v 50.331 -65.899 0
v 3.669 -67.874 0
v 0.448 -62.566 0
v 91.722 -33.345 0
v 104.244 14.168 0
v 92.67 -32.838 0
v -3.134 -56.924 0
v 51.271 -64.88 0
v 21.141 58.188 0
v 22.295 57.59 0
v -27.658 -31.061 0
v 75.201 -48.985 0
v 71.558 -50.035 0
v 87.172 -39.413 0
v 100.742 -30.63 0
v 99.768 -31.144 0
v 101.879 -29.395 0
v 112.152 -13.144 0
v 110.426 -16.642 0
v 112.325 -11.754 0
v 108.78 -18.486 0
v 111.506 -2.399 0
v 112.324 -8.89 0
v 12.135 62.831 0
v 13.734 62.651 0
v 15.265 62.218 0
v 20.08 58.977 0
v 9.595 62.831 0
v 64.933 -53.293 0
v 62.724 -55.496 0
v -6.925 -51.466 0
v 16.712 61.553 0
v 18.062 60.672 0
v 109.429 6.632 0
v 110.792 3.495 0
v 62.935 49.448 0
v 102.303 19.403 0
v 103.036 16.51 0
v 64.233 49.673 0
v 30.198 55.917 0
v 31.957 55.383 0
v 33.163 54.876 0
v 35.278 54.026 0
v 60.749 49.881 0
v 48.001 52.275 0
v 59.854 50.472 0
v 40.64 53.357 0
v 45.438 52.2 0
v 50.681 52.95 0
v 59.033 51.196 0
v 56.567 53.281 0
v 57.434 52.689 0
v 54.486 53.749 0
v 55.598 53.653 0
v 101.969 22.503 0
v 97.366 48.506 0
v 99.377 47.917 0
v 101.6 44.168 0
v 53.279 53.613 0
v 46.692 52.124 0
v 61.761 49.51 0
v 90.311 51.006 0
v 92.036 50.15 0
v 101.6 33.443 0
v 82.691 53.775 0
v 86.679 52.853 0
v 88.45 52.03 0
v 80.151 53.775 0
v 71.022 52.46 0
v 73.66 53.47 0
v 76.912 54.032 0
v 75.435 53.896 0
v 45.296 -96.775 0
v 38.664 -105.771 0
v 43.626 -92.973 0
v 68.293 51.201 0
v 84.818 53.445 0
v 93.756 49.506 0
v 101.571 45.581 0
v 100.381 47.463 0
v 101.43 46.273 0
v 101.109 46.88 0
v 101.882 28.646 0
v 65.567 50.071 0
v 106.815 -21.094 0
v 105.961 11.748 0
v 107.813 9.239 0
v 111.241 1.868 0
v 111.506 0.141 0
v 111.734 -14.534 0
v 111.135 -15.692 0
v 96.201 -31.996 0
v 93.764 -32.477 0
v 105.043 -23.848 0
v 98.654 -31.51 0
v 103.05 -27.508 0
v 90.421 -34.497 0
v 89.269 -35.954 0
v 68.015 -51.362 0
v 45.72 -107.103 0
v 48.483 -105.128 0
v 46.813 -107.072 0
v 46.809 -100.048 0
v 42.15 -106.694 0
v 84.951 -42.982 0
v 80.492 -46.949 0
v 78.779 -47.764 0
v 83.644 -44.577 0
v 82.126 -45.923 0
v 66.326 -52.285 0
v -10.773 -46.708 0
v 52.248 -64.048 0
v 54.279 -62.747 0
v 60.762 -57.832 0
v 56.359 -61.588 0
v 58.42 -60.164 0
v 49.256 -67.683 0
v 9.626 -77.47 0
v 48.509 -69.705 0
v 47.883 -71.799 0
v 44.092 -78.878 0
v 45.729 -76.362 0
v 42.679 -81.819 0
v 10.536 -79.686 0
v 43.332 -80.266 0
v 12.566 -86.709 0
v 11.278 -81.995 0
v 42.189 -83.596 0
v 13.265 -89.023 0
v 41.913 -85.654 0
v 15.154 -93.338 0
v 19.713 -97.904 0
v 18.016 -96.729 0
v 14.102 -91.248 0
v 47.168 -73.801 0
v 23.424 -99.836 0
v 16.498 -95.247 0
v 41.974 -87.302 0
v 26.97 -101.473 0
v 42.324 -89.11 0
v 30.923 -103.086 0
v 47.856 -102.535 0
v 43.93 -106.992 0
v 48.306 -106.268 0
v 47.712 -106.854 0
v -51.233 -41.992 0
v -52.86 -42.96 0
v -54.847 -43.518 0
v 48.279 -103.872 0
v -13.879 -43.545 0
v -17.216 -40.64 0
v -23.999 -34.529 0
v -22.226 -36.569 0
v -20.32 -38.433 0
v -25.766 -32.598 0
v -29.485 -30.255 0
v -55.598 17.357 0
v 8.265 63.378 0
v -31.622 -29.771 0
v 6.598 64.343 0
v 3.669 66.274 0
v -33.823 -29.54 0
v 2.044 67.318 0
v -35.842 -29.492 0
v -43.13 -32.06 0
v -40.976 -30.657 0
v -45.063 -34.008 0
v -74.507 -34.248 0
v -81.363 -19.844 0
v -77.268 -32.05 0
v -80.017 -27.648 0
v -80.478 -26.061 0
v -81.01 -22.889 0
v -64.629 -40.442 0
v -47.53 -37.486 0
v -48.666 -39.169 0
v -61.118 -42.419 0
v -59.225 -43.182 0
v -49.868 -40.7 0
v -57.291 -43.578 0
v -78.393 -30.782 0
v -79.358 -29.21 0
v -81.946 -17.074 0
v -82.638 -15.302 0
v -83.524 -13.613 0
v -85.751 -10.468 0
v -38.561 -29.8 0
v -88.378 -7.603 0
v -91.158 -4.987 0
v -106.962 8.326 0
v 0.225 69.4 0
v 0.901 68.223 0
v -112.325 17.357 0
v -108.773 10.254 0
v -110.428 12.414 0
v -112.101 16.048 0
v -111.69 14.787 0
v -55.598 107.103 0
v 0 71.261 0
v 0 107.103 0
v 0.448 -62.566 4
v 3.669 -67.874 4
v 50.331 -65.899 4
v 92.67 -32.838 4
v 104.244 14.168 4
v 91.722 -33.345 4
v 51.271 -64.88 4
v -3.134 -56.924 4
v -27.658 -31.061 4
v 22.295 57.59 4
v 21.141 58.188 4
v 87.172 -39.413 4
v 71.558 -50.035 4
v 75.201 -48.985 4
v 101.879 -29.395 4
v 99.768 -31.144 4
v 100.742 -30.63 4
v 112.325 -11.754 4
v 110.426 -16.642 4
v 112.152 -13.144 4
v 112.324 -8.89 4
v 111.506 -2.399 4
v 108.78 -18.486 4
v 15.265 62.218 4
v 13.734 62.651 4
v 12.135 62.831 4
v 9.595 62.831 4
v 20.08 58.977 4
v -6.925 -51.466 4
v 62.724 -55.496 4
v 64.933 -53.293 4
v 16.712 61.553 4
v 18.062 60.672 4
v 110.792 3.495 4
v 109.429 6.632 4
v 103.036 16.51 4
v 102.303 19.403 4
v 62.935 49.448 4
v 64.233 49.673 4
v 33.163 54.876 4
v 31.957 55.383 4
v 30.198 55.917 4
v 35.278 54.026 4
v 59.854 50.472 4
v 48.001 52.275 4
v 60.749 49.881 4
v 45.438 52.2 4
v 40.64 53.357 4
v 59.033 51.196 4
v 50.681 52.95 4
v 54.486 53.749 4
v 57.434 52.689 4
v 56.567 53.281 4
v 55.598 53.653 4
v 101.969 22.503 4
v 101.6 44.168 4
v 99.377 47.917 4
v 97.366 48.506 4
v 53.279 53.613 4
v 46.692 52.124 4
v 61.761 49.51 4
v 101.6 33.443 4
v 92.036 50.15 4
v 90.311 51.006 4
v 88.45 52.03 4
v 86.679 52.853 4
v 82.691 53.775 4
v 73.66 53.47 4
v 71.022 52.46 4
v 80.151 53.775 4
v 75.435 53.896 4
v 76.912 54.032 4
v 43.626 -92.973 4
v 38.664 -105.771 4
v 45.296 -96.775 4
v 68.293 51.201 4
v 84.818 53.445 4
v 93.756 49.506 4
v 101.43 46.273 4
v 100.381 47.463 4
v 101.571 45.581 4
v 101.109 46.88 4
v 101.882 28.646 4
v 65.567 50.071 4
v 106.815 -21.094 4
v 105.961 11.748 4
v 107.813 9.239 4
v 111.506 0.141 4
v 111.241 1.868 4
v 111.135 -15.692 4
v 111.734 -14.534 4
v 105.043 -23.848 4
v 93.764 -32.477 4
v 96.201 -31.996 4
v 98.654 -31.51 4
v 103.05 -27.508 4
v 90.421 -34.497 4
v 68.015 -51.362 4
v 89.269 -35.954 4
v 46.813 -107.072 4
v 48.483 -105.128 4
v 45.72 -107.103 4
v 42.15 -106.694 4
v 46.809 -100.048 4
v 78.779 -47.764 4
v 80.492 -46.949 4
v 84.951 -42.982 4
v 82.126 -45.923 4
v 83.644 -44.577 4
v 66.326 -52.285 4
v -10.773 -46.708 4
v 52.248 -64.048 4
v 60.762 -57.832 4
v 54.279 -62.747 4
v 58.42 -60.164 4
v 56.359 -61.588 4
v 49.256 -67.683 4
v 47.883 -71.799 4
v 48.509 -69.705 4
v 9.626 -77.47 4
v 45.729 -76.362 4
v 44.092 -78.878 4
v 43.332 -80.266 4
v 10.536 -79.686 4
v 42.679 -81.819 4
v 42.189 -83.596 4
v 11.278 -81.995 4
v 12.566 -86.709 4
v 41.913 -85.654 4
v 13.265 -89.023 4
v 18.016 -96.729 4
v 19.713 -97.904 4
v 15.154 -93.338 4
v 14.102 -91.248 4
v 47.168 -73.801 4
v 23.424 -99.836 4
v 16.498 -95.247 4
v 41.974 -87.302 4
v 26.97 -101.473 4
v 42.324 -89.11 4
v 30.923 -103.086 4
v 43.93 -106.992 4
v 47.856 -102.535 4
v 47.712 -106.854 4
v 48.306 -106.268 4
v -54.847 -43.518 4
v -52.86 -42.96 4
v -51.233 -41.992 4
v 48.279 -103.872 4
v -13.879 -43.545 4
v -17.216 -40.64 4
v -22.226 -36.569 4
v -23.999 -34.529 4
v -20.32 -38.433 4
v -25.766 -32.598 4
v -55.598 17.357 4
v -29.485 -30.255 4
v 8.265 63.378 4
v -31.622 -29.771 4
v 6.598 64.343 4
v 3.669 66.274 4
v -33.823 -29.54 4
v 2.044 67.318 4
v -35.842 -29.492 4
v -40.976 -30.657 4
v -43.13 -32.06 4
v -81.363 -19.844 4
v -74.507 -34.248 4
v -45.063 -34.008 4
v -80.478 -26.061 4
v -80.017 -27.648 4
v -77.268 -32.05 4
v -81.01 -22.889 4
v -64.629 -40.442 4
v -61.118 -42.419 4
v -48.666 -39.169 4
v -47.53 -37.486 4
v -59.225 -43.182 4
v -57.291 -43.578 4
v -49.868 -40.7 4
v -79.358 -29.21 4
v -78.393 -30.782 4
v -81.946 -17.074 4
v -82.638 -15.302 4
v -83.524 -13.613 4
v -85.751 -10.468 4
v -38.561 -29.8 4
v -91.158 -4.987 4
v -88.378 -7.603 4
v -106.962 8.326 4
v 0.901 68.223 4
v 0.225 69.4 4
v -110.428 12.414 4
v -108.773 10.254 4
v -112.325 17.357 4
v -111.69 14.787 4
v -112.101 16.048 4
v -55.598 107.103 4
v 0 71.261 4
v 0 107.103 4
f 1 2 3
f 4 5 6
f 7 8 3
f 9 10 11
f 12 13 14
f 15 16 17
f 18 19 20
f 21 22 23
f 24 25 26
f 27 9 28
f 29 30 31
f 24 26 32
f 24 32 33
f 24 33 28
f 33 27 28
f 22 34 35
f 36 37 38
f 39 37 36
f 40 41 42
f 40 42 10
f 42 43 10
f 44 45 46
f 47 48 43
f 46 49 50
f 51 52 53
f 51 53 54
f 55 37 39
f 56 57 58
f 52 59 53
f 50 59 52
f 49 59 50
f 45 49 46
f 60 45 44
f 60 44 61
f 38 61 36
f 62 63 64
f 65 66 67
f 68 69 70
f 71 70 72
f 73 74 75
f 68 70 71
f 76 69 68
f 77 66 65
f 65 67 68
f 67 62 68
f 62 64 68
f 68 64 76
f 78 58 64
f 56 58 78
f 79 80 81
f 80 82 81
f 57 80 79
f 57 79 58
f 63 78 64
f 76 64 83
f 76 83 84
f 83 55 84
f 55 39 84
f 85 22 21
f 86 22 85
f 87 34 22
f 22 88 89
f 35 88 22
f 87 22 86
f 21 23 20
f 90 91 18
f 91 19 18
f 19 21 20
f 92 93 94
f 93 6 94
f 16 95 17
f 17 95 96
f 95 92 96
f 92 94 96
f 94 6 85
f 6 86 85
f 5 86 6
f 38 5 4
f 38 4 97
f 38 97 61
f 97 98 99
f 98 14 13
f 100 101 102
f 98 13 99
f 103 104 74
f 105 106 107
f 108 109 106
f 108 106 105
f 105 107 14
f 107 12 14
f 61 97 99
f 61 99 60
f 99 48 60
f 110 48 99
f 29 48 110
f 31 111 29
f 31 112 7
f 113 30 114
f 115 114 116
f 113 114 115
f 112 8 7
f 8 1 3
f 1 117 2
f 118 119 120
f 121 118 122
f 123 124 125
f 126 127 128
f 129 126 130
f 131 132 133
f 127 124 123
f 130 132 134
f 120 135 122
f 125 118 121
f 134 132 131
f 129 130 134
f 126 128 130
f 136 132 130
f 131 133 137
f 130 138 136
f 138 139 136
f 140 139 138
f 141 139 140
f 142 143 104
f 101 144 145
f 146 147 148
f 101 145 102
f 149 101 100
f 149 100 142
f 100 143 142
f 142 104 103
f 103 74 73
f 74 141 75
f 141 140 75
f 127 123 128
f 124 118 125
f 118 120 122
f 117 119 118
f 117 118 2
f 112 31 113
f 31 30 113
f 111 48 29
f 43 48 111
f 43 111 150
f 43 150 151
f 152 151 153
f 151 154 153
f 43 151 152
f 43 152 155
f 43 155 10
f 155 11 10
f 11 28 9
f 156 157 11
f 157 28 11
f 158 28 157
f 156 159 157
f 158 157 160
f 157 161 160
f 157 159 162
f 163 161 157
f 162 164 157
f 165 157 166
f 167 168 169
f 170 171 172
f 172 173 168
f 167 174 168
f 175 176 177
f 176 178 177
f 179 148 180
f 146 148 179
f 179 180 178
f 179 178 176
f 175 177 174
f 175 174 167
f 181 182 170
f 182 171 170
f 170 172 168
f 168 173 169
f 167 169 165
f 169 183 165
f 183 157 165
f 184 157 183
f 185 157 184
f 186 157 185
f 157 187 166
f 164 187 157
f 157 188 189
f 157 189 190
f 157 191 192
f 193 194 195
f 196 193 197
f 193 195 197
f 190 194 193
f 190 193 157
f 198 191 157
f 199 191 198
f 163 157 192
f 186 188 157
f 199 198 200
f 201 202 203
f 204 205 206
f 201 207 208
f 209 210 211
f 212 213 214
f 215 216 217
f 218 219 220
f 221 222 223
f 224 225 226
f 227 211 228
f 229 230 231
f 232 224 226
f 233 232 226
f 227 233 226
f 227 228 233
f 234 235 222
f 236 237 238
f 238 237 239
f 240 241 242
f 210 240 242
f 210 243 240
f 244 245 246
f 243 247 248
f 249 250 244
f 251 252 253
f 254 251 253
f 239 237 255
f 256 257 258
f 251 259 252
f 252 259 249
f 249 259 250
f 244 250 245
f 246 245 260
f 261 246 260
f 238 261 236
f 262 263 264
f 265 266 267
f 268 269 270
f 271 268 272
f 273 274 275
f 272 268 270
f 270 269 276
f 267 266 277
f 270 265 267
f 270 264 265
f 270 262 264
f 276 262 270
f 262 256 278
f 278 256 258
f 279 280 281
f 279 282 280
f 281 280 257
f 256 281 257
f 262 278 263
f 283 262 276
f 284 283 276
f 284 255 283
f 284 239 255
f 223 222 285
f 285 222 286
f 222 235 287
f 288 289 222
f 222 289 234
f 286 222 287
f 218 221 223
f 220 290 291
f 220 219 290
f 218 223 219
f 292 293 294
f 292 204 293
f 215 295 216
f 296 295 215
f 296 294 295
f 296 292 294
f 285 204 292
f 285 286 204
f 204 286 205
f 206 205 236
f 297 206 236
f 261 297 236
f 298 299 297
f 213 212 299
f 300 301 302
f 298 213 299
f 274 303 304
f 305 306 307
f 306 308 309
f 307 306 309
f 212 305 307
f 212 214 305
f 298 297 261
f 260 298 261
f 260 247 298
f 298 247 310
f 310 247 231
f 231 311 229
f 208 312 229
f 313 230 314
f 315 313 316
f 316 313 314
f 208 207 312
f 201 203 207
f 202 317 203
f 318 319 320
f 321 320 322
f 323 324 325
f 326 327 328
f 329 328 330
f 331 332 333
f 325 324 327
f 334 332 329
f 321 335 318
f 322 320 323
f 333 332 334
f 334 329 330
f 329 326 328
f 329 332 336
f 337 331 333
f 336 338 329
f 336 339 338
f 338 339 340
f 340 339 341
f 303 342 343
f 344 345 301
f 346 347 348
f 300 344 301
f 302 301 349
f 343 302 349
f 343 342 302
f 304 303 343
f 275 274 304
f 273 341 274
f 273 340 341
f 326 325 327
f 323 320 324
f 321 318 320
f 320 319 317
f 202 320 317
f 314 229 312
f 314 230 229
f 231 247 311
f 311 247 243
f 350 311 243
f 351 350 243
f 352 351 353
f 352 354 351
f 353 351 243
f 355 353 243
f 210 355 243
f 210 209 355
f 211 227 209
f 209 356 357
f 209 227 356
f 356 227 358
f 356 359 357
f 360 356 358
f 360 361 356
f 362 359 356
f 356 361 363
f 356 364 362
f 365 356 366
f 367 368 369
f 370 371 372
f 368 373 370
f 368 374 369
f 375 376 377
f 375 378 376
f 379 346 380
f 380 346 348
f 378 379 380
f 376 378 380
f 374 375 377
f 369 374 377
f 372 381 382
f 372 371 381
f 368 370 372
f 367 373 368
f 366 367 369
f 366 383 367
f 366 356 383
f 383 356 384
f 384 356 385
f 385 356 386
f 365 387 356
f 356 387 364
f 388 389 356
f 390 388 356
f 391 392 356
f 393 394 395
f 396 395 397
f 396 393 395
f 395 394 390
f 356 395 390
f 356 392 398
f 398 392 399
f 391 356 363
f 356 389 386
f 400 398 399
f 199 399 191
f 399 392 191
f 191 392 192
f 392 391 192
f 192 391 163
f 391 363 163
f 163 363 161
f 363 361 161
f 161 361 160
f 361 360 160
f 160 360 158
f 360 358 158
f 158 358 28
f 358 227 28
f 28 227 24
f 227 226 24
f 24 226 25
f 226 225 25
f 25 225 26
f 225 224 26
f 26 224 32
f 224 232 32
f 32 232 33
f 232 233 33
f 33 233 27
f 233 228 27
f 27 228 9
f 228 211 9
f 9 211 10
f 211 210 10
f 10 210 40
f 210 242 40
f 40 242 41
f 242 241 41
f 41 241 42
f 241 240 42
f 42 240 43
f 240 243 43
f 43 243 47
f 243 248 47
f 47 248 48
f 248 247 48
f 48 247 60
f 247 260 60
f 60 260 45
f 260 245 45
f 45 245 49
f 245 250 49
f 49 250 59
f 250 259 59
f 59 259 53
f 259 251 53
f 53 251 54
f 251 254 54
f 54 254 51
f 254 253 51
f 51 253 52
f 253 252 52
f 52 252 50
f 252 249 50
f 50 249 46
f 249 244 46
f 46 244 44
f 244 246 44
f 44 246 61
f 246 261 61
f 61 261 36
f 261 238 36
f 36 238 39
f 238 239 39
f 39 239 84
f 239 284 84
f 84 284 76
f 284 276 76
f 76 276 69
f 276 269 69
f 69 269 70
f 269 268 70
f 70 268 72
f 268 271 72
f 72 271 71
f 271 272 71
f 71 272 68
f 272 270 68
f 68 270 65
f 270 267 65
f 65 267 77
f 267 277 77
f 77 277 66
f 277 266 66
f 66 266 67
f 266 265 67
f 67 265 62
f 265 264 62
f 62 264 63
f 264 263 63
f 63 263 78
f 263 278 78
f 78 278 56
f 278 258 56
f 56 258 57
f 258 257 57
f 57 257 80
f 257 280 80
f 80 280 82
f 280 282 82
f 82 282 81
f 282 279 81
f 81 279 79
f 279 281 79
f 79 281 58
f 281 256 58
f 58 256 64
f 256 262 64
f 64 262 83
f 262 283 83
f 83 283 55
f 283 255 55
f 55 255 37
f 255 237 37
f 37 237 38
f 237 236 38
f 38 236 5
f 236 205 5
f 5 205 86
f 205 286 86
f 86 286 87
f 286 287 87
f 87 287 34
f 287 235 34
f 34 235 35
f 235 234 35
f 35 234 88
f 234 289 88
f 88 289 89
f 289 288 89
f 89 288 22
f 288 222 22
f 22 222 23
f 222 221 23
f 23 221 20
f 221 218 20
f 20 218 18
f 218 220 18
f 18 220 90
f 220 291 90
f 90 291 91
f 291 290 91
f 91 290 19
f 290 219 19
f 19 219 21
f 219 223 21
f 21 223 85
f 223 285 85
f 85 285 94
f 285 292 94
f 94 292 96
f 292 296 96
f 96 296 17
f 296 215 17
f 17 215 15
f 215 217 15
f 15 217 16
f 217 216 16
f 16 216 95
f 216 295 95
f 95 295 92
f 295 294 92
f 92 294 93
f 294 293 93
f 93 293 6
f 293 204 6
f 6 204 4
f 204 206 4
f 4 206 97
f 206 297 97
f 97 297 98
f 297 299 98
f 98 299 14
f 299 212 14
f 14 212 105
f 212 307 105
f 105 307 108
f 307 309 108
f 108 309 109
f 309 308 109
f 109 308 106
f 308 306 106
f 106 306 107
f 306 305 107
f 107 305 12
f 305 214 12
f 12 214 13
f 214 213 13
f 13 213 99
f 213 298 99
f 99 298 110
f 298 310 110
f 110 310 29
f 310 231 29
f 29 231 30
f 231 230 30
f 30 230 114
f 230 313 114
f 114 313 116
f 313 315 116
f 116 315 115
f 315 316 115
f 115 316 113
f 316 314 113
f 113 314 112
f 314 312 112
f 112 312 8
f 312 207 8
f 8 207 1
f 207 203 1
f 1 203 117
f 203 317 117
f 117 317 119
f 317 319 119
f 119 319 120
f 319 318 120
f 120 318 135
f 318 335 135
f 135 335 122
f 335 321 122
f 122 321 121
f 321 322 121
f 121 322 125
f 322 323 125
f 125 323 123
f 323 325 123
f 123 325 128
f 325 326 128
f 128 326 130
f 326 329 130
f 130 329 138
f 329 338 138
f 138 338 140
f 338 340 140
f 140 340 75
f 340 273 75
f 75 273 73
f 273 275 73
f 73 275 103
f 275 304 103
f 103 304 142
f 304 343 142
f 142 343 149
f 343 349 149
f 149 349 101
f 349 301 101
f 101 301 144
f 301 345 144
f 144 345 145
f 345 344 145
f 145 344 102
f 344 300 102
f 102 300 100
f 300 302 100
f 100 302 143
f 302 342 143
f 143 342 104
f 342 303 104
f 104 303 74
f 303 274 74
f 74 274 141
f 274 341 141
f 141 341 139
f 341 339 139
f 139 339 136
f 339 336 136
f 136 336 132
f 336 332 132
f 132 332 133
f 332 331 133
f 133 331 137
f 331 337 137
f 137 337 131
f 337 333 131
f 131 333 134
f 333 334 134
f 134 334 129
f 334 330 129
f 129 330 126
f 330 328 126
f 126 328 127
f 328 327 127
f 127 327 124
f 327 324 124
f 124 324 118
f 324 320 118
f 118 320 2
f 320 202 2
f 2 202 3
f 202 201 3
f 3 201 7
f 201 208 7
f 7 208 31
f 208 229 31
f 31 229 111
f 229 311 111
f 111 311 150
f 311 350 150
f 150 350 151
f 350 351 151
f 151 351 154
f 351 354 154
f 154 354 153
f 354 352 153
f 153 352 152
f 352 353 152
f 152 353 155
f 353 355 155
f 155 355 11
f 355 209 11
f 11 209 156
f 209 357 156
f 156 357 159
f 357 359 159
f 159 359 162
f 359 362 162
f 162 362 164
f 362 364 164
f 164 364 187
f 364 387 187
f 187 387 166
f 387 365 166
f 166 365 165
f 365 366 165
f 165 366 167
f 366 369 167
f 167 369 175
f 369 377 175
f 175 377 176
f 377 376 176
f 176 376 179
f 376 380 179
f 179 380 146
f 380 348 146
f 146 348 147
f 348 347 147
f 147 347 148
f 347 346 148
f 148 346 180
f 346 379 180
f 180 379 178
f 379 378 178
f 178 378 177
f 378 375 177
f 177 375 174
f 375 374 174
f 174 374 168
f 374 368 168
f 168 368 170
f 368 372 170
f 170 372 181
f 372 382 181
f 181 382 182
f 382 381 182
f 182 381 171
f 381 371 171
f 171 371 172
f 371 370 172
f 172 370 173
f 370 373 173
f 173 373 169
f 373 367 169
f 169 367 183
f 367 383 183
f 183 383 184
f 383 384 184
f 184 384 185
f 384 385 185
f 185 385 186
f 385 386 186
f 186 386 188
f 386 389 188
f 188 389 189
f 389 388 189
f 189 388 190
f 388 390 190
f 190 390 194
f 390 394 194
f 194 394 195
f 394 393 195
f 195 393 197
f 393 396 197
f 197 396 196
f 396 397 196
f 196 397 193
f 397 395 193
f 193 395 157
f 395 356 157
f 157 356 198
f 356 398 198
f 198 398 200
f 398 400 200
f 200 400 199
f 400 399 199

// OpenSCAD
// Module names are of the form poly_<inkscape-path-id>().  As a result,
// you can associate a polygon in this OpenSCAD program with the corresponding
// SVG element in the Inkscape document by looking for the XML element with
// the attribute id="inkscape-path-id".

// fudge value is used to ensure that subtracted solids are a tad taller
// in the z dimension than the polygon being subtracted from.  This helps
// keep the resulting .stl file manifold.
fudge = 0.1;

module poly_Selection(h)
{
  scale([25.4/90, -25.4/90, 1]) union()
  {
    linear_extrude(height=h)
      polygon([[-0.000625,-379.500000],[-0.000625,-252.500000],[0.795937,-245.904219],[3.191875,-241.733750],[7.241562,-238.528906],[12.999375,-234.830000],[23.379375,-227.987500],[29.283750,-224.567187],[33.999375,-222.630000],[42.999375,-222.630000],[48.664219,-221.990156],[54.088125,-220.458750],[59.217656,-218.100469],[63.999375,-214.980000],[71.150625,-208.972500],[74.910469,-206.176875],[78.999375,-204.060000],[106.999375,-198.130000],[113.231875,-196.239375],[117.506875,-194.442500],[124.999375,-191.430000],[143.999375,-189.060000],[160.999375,-184.960000],[165.444414,-184.693203],[170.080938,-185.227500],[179.576875,-187.617500],[188.784063,-189.966250],[193.059648,-190.448984],[196.999375,-190.110000],[200.435176,-188.790957],[203.504531,-186.692031],[209.170625,-181.403750],[212.080723,-178.839004],[215.251094,-176.743594],[218.838418,-175.429824],[222.999375,-175.210000],[227.598437,-176.005234],[232.323125,-177.416875],[241.984375,-181.420000],[251.653125,-185.880625],[260.999375,-189.460000],[267.290313,-190.971719],[272.521875,-191.451250],[283.999375,-190.540000],[292.999375,-190.540000],[300.536875,-189.371406],[307.129375,-187.273750],[313.406875,-184.356719],[319.999375,-180.730000],[326.113438,-177.697500],[332.206875,-175.415000],[344.999375,-171.870000],[352.124375,-169.785000],[355.681250,-168.177188],[358.259375,-166.110000],[359.398906,-163.958750],[359.898125,-161.507500],[359.999375,-156.500000],[359.999375,-118.500000],[360.999375,-101.500000],[361.308125,-79.733750],[362.491406,-68.749844],[365.089375,-58.500000],[369.369531,-50.203281],[375.450625,-41.626250],[382.013594,-32.736094],[387.739375,-23.500000],[392.570625,-12.382500],[394.161719,-6.619375],[395.099375,-0.500000],[395.099375,8.500000],[397.999375,31.500000],[398.000625,41.646250],[397.390469,46.573594],[395.909375,51.500000],[393.784063,55.601406],[391.274375,58.968750],[385.439375,65.500000],[378.478125,74.741250],[372.199375,84.500000],[365.138125,97.467500],[360.990156,104.156562],[356.959375,108.530000],[353.507012,110.351836],[349.562344,111.650312],[340.870625,113.370000],[332.233281,115.074687],[328.356582,116.354414],[324.999375,118.150000],[320.388437,122.233613],[316.306250,127.396406],[308.876875,139.651250],[301.008750,152.297969],[296.378125,157.950605],[290.999375,162.720000],[285.207520,166.355937],[279.138281,169.243750],[266.460625,173.570000],[253.552344,177.288750],[240.999375,181.990000],[235.013594,185.262031],[230.078750,188.835000],[222.251875,196.640000],[215.298750,204.917500],[206.999375,213.180000],[199.696094,218.223906],[192.328125,222.331250],[185.130781,226.942969],[181.669629,229.888262],[178.339375,233.500000],[174.527656,239.822656],[171.883125,246.986250],[169.664219,254.406719],[167.129375,261.500000],[162.033281,270.572656],[156.233125,279.488750],[153.536895,284.407520],[151.226094,289.910469],[149.487871,296.205371],[148.509375,303.500000],[148.726602,309.336465],[149.965938,315.742344],[154.581875,329.431250],[160.499062,342.904531],[165.859375,354.500000],[169.566875,363.312500],[171.068125,368.050625],[171.789375,372.500000],[171.161094,376.538438],[169.058125,378.617500],[165.873281,379.387813],[161.999375,379.500000],[155.657500,379.104219],[149.349375,378.051250],[136.999375,374.780000],[109.568125,365.266250],[95.561406,359.548906],[82.999375,353.750000],[69.848125,346.902500],[63.836406,342.739063],[58.459375,337.490000],[53.696660,330.723262],[49.967656,323.317969],[47.001074,315.435254],[44.525625,307.236250],[39.962969,290.533906],[37.333184,282.352832],[34.109375,274.500000],[12.999375,240.500000],[1.588281,221.689531],[-11.104375,201.698750],[-24.537656,182.358594],[-38.170625,165.500000],[-49.176875,154.292500],[-61.000625,144.000000],[-72.000625,136.180000],[-78.753281,129.575937],[-85.034375,122.347500],[-91.298594,115.505313],[-98.000625,110.060000],[-104.473906,107.202813],[-112.046875,105.487500],[-119.846719,104.668437],[-127.000625,104.500000],[-136.632031,105.592344],[-145.191875,108.626250],[-152.823594,113.597031],[-159.670625,120.500000],[-168.413906,132.824063],[-172.439199,138.787930],[-176.696875,144.212500],[-181.534395,148.792383],[-187.299219,152.222188],[-194.338809,154.196523],[-203.000625,154.410000],[-209.851719,153.008750],[-216.559375,150.302500],[-229.000625,143.300000],[-264.000625,121.350000],[-273.784375,113.561250],[-277.769219,109.072031],[-281.190625,103.500000],[-283.524688,97.963809],[-285.157500,92.341719],[-287.043125,81.103750],[-288.295000,70.313906],[-290.360625,60.500000],[-292.813535,54.220937],[-295.951406,48.236250],[-303.841875,37.090000],[-313.151719,26.941250],[-323.000625,17.670000],[-379.000625,-29.500000],[-385.416094,-36.333750],[-391.279375,-43.985000],[-395.753281,-52.393750],[-397.207598,-56.863438],[-398.000625,-61.500000],[-197.000625,-61.500000],[-197.000625,-379.500000],[-0.000625,-379.500000]]);
  }
}

module texas(h)
{

poly_Selection(h);
}

texas(4);
